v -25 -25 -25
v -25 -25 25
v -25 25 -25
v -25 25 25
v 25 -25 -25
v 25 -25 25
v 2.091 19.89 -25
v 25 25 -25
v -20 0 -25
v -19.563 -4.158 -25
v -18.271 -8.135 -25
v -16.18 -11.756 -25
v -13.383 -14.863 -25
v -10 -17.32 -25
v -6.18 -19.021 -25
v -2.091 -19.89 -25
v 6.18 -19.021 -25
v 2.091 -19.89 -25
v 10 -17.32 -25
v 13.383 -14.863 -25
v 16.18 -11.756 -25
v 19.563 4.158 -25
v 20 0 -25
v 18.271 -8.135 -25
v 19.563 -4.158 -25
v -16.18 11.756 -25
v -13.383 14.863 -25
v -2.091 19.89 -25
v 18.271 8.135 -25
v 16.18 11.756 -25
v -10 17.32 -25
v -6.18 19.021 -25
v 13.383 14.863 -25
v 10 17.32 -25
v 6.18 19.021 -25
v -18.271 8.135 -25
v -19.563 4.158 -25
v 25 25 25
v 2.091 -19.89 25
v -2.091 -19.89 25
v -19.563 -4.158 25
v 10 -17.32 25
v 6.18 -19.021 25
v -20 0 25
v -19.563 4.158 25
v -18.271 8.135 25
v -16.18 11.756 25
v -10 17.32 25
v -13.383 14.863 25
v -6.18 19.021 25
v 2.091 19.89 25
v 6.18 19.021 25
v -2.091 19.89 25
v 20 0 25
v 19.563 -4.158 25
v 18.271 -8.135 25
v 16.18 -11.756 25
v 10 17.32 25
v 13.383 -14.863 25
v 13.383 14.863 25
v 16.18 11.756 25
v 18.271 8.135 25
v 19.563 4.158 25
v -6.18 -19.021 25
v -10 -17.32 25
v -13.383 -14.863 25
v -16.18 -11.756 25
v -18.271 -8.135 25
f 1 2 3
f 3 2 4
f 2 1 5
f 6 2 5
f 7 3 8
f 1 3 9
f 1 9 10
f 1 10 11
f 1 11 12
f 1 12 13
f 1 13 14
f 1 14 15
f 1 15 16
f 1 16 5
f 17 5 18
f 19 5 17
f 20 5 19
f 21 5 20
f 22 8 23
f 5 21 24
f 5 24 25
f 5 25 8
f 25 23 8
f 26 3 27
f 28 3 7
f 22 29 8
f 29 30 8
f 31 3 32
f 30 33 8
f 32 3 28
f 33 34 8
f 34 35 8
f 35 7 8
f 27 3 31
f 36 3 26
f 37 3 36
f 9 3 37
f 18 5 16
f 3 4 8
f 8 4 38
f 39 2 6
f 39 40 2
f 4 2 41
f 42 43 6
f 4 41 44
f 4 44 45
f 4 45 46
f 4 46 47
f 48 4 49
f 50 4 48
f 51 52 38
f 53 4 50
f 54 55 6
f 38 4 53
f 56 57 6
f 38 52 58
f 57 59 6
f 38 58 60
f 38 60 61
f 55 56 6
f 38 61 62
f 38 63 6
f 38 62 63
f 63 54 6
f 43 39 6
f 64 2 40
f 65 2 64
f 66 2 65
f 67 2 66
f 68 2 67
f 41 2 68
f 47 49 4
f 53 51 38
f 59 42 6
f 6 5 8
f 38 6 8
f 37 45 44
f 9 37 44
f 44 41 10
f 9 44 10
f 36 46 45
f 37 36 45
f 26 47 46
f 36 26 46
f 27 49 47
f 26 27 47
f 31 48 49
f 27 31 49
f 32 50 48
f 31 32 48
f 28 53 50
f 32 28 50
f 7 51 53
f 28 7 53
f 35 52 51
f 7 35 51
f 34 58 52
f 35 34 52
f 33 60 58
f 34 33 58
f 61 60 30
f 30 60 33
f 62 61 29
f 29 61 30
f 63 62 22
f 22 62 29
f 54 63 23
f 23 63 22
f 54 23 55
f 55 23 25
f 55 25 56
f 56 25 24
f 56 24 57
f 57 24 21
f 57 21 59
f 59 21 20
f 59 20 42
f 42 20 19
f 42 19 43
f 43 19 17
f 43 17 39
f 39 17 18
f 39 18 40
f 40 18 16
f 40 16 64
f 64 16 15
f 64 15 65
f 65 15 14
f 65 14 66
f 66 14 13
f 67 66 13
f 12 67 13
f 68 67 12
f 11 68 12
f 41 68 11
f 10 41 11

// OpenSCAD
difference() {
    cube(50, center=true);
    cylinder(r=20, h=100, center=true);
}
